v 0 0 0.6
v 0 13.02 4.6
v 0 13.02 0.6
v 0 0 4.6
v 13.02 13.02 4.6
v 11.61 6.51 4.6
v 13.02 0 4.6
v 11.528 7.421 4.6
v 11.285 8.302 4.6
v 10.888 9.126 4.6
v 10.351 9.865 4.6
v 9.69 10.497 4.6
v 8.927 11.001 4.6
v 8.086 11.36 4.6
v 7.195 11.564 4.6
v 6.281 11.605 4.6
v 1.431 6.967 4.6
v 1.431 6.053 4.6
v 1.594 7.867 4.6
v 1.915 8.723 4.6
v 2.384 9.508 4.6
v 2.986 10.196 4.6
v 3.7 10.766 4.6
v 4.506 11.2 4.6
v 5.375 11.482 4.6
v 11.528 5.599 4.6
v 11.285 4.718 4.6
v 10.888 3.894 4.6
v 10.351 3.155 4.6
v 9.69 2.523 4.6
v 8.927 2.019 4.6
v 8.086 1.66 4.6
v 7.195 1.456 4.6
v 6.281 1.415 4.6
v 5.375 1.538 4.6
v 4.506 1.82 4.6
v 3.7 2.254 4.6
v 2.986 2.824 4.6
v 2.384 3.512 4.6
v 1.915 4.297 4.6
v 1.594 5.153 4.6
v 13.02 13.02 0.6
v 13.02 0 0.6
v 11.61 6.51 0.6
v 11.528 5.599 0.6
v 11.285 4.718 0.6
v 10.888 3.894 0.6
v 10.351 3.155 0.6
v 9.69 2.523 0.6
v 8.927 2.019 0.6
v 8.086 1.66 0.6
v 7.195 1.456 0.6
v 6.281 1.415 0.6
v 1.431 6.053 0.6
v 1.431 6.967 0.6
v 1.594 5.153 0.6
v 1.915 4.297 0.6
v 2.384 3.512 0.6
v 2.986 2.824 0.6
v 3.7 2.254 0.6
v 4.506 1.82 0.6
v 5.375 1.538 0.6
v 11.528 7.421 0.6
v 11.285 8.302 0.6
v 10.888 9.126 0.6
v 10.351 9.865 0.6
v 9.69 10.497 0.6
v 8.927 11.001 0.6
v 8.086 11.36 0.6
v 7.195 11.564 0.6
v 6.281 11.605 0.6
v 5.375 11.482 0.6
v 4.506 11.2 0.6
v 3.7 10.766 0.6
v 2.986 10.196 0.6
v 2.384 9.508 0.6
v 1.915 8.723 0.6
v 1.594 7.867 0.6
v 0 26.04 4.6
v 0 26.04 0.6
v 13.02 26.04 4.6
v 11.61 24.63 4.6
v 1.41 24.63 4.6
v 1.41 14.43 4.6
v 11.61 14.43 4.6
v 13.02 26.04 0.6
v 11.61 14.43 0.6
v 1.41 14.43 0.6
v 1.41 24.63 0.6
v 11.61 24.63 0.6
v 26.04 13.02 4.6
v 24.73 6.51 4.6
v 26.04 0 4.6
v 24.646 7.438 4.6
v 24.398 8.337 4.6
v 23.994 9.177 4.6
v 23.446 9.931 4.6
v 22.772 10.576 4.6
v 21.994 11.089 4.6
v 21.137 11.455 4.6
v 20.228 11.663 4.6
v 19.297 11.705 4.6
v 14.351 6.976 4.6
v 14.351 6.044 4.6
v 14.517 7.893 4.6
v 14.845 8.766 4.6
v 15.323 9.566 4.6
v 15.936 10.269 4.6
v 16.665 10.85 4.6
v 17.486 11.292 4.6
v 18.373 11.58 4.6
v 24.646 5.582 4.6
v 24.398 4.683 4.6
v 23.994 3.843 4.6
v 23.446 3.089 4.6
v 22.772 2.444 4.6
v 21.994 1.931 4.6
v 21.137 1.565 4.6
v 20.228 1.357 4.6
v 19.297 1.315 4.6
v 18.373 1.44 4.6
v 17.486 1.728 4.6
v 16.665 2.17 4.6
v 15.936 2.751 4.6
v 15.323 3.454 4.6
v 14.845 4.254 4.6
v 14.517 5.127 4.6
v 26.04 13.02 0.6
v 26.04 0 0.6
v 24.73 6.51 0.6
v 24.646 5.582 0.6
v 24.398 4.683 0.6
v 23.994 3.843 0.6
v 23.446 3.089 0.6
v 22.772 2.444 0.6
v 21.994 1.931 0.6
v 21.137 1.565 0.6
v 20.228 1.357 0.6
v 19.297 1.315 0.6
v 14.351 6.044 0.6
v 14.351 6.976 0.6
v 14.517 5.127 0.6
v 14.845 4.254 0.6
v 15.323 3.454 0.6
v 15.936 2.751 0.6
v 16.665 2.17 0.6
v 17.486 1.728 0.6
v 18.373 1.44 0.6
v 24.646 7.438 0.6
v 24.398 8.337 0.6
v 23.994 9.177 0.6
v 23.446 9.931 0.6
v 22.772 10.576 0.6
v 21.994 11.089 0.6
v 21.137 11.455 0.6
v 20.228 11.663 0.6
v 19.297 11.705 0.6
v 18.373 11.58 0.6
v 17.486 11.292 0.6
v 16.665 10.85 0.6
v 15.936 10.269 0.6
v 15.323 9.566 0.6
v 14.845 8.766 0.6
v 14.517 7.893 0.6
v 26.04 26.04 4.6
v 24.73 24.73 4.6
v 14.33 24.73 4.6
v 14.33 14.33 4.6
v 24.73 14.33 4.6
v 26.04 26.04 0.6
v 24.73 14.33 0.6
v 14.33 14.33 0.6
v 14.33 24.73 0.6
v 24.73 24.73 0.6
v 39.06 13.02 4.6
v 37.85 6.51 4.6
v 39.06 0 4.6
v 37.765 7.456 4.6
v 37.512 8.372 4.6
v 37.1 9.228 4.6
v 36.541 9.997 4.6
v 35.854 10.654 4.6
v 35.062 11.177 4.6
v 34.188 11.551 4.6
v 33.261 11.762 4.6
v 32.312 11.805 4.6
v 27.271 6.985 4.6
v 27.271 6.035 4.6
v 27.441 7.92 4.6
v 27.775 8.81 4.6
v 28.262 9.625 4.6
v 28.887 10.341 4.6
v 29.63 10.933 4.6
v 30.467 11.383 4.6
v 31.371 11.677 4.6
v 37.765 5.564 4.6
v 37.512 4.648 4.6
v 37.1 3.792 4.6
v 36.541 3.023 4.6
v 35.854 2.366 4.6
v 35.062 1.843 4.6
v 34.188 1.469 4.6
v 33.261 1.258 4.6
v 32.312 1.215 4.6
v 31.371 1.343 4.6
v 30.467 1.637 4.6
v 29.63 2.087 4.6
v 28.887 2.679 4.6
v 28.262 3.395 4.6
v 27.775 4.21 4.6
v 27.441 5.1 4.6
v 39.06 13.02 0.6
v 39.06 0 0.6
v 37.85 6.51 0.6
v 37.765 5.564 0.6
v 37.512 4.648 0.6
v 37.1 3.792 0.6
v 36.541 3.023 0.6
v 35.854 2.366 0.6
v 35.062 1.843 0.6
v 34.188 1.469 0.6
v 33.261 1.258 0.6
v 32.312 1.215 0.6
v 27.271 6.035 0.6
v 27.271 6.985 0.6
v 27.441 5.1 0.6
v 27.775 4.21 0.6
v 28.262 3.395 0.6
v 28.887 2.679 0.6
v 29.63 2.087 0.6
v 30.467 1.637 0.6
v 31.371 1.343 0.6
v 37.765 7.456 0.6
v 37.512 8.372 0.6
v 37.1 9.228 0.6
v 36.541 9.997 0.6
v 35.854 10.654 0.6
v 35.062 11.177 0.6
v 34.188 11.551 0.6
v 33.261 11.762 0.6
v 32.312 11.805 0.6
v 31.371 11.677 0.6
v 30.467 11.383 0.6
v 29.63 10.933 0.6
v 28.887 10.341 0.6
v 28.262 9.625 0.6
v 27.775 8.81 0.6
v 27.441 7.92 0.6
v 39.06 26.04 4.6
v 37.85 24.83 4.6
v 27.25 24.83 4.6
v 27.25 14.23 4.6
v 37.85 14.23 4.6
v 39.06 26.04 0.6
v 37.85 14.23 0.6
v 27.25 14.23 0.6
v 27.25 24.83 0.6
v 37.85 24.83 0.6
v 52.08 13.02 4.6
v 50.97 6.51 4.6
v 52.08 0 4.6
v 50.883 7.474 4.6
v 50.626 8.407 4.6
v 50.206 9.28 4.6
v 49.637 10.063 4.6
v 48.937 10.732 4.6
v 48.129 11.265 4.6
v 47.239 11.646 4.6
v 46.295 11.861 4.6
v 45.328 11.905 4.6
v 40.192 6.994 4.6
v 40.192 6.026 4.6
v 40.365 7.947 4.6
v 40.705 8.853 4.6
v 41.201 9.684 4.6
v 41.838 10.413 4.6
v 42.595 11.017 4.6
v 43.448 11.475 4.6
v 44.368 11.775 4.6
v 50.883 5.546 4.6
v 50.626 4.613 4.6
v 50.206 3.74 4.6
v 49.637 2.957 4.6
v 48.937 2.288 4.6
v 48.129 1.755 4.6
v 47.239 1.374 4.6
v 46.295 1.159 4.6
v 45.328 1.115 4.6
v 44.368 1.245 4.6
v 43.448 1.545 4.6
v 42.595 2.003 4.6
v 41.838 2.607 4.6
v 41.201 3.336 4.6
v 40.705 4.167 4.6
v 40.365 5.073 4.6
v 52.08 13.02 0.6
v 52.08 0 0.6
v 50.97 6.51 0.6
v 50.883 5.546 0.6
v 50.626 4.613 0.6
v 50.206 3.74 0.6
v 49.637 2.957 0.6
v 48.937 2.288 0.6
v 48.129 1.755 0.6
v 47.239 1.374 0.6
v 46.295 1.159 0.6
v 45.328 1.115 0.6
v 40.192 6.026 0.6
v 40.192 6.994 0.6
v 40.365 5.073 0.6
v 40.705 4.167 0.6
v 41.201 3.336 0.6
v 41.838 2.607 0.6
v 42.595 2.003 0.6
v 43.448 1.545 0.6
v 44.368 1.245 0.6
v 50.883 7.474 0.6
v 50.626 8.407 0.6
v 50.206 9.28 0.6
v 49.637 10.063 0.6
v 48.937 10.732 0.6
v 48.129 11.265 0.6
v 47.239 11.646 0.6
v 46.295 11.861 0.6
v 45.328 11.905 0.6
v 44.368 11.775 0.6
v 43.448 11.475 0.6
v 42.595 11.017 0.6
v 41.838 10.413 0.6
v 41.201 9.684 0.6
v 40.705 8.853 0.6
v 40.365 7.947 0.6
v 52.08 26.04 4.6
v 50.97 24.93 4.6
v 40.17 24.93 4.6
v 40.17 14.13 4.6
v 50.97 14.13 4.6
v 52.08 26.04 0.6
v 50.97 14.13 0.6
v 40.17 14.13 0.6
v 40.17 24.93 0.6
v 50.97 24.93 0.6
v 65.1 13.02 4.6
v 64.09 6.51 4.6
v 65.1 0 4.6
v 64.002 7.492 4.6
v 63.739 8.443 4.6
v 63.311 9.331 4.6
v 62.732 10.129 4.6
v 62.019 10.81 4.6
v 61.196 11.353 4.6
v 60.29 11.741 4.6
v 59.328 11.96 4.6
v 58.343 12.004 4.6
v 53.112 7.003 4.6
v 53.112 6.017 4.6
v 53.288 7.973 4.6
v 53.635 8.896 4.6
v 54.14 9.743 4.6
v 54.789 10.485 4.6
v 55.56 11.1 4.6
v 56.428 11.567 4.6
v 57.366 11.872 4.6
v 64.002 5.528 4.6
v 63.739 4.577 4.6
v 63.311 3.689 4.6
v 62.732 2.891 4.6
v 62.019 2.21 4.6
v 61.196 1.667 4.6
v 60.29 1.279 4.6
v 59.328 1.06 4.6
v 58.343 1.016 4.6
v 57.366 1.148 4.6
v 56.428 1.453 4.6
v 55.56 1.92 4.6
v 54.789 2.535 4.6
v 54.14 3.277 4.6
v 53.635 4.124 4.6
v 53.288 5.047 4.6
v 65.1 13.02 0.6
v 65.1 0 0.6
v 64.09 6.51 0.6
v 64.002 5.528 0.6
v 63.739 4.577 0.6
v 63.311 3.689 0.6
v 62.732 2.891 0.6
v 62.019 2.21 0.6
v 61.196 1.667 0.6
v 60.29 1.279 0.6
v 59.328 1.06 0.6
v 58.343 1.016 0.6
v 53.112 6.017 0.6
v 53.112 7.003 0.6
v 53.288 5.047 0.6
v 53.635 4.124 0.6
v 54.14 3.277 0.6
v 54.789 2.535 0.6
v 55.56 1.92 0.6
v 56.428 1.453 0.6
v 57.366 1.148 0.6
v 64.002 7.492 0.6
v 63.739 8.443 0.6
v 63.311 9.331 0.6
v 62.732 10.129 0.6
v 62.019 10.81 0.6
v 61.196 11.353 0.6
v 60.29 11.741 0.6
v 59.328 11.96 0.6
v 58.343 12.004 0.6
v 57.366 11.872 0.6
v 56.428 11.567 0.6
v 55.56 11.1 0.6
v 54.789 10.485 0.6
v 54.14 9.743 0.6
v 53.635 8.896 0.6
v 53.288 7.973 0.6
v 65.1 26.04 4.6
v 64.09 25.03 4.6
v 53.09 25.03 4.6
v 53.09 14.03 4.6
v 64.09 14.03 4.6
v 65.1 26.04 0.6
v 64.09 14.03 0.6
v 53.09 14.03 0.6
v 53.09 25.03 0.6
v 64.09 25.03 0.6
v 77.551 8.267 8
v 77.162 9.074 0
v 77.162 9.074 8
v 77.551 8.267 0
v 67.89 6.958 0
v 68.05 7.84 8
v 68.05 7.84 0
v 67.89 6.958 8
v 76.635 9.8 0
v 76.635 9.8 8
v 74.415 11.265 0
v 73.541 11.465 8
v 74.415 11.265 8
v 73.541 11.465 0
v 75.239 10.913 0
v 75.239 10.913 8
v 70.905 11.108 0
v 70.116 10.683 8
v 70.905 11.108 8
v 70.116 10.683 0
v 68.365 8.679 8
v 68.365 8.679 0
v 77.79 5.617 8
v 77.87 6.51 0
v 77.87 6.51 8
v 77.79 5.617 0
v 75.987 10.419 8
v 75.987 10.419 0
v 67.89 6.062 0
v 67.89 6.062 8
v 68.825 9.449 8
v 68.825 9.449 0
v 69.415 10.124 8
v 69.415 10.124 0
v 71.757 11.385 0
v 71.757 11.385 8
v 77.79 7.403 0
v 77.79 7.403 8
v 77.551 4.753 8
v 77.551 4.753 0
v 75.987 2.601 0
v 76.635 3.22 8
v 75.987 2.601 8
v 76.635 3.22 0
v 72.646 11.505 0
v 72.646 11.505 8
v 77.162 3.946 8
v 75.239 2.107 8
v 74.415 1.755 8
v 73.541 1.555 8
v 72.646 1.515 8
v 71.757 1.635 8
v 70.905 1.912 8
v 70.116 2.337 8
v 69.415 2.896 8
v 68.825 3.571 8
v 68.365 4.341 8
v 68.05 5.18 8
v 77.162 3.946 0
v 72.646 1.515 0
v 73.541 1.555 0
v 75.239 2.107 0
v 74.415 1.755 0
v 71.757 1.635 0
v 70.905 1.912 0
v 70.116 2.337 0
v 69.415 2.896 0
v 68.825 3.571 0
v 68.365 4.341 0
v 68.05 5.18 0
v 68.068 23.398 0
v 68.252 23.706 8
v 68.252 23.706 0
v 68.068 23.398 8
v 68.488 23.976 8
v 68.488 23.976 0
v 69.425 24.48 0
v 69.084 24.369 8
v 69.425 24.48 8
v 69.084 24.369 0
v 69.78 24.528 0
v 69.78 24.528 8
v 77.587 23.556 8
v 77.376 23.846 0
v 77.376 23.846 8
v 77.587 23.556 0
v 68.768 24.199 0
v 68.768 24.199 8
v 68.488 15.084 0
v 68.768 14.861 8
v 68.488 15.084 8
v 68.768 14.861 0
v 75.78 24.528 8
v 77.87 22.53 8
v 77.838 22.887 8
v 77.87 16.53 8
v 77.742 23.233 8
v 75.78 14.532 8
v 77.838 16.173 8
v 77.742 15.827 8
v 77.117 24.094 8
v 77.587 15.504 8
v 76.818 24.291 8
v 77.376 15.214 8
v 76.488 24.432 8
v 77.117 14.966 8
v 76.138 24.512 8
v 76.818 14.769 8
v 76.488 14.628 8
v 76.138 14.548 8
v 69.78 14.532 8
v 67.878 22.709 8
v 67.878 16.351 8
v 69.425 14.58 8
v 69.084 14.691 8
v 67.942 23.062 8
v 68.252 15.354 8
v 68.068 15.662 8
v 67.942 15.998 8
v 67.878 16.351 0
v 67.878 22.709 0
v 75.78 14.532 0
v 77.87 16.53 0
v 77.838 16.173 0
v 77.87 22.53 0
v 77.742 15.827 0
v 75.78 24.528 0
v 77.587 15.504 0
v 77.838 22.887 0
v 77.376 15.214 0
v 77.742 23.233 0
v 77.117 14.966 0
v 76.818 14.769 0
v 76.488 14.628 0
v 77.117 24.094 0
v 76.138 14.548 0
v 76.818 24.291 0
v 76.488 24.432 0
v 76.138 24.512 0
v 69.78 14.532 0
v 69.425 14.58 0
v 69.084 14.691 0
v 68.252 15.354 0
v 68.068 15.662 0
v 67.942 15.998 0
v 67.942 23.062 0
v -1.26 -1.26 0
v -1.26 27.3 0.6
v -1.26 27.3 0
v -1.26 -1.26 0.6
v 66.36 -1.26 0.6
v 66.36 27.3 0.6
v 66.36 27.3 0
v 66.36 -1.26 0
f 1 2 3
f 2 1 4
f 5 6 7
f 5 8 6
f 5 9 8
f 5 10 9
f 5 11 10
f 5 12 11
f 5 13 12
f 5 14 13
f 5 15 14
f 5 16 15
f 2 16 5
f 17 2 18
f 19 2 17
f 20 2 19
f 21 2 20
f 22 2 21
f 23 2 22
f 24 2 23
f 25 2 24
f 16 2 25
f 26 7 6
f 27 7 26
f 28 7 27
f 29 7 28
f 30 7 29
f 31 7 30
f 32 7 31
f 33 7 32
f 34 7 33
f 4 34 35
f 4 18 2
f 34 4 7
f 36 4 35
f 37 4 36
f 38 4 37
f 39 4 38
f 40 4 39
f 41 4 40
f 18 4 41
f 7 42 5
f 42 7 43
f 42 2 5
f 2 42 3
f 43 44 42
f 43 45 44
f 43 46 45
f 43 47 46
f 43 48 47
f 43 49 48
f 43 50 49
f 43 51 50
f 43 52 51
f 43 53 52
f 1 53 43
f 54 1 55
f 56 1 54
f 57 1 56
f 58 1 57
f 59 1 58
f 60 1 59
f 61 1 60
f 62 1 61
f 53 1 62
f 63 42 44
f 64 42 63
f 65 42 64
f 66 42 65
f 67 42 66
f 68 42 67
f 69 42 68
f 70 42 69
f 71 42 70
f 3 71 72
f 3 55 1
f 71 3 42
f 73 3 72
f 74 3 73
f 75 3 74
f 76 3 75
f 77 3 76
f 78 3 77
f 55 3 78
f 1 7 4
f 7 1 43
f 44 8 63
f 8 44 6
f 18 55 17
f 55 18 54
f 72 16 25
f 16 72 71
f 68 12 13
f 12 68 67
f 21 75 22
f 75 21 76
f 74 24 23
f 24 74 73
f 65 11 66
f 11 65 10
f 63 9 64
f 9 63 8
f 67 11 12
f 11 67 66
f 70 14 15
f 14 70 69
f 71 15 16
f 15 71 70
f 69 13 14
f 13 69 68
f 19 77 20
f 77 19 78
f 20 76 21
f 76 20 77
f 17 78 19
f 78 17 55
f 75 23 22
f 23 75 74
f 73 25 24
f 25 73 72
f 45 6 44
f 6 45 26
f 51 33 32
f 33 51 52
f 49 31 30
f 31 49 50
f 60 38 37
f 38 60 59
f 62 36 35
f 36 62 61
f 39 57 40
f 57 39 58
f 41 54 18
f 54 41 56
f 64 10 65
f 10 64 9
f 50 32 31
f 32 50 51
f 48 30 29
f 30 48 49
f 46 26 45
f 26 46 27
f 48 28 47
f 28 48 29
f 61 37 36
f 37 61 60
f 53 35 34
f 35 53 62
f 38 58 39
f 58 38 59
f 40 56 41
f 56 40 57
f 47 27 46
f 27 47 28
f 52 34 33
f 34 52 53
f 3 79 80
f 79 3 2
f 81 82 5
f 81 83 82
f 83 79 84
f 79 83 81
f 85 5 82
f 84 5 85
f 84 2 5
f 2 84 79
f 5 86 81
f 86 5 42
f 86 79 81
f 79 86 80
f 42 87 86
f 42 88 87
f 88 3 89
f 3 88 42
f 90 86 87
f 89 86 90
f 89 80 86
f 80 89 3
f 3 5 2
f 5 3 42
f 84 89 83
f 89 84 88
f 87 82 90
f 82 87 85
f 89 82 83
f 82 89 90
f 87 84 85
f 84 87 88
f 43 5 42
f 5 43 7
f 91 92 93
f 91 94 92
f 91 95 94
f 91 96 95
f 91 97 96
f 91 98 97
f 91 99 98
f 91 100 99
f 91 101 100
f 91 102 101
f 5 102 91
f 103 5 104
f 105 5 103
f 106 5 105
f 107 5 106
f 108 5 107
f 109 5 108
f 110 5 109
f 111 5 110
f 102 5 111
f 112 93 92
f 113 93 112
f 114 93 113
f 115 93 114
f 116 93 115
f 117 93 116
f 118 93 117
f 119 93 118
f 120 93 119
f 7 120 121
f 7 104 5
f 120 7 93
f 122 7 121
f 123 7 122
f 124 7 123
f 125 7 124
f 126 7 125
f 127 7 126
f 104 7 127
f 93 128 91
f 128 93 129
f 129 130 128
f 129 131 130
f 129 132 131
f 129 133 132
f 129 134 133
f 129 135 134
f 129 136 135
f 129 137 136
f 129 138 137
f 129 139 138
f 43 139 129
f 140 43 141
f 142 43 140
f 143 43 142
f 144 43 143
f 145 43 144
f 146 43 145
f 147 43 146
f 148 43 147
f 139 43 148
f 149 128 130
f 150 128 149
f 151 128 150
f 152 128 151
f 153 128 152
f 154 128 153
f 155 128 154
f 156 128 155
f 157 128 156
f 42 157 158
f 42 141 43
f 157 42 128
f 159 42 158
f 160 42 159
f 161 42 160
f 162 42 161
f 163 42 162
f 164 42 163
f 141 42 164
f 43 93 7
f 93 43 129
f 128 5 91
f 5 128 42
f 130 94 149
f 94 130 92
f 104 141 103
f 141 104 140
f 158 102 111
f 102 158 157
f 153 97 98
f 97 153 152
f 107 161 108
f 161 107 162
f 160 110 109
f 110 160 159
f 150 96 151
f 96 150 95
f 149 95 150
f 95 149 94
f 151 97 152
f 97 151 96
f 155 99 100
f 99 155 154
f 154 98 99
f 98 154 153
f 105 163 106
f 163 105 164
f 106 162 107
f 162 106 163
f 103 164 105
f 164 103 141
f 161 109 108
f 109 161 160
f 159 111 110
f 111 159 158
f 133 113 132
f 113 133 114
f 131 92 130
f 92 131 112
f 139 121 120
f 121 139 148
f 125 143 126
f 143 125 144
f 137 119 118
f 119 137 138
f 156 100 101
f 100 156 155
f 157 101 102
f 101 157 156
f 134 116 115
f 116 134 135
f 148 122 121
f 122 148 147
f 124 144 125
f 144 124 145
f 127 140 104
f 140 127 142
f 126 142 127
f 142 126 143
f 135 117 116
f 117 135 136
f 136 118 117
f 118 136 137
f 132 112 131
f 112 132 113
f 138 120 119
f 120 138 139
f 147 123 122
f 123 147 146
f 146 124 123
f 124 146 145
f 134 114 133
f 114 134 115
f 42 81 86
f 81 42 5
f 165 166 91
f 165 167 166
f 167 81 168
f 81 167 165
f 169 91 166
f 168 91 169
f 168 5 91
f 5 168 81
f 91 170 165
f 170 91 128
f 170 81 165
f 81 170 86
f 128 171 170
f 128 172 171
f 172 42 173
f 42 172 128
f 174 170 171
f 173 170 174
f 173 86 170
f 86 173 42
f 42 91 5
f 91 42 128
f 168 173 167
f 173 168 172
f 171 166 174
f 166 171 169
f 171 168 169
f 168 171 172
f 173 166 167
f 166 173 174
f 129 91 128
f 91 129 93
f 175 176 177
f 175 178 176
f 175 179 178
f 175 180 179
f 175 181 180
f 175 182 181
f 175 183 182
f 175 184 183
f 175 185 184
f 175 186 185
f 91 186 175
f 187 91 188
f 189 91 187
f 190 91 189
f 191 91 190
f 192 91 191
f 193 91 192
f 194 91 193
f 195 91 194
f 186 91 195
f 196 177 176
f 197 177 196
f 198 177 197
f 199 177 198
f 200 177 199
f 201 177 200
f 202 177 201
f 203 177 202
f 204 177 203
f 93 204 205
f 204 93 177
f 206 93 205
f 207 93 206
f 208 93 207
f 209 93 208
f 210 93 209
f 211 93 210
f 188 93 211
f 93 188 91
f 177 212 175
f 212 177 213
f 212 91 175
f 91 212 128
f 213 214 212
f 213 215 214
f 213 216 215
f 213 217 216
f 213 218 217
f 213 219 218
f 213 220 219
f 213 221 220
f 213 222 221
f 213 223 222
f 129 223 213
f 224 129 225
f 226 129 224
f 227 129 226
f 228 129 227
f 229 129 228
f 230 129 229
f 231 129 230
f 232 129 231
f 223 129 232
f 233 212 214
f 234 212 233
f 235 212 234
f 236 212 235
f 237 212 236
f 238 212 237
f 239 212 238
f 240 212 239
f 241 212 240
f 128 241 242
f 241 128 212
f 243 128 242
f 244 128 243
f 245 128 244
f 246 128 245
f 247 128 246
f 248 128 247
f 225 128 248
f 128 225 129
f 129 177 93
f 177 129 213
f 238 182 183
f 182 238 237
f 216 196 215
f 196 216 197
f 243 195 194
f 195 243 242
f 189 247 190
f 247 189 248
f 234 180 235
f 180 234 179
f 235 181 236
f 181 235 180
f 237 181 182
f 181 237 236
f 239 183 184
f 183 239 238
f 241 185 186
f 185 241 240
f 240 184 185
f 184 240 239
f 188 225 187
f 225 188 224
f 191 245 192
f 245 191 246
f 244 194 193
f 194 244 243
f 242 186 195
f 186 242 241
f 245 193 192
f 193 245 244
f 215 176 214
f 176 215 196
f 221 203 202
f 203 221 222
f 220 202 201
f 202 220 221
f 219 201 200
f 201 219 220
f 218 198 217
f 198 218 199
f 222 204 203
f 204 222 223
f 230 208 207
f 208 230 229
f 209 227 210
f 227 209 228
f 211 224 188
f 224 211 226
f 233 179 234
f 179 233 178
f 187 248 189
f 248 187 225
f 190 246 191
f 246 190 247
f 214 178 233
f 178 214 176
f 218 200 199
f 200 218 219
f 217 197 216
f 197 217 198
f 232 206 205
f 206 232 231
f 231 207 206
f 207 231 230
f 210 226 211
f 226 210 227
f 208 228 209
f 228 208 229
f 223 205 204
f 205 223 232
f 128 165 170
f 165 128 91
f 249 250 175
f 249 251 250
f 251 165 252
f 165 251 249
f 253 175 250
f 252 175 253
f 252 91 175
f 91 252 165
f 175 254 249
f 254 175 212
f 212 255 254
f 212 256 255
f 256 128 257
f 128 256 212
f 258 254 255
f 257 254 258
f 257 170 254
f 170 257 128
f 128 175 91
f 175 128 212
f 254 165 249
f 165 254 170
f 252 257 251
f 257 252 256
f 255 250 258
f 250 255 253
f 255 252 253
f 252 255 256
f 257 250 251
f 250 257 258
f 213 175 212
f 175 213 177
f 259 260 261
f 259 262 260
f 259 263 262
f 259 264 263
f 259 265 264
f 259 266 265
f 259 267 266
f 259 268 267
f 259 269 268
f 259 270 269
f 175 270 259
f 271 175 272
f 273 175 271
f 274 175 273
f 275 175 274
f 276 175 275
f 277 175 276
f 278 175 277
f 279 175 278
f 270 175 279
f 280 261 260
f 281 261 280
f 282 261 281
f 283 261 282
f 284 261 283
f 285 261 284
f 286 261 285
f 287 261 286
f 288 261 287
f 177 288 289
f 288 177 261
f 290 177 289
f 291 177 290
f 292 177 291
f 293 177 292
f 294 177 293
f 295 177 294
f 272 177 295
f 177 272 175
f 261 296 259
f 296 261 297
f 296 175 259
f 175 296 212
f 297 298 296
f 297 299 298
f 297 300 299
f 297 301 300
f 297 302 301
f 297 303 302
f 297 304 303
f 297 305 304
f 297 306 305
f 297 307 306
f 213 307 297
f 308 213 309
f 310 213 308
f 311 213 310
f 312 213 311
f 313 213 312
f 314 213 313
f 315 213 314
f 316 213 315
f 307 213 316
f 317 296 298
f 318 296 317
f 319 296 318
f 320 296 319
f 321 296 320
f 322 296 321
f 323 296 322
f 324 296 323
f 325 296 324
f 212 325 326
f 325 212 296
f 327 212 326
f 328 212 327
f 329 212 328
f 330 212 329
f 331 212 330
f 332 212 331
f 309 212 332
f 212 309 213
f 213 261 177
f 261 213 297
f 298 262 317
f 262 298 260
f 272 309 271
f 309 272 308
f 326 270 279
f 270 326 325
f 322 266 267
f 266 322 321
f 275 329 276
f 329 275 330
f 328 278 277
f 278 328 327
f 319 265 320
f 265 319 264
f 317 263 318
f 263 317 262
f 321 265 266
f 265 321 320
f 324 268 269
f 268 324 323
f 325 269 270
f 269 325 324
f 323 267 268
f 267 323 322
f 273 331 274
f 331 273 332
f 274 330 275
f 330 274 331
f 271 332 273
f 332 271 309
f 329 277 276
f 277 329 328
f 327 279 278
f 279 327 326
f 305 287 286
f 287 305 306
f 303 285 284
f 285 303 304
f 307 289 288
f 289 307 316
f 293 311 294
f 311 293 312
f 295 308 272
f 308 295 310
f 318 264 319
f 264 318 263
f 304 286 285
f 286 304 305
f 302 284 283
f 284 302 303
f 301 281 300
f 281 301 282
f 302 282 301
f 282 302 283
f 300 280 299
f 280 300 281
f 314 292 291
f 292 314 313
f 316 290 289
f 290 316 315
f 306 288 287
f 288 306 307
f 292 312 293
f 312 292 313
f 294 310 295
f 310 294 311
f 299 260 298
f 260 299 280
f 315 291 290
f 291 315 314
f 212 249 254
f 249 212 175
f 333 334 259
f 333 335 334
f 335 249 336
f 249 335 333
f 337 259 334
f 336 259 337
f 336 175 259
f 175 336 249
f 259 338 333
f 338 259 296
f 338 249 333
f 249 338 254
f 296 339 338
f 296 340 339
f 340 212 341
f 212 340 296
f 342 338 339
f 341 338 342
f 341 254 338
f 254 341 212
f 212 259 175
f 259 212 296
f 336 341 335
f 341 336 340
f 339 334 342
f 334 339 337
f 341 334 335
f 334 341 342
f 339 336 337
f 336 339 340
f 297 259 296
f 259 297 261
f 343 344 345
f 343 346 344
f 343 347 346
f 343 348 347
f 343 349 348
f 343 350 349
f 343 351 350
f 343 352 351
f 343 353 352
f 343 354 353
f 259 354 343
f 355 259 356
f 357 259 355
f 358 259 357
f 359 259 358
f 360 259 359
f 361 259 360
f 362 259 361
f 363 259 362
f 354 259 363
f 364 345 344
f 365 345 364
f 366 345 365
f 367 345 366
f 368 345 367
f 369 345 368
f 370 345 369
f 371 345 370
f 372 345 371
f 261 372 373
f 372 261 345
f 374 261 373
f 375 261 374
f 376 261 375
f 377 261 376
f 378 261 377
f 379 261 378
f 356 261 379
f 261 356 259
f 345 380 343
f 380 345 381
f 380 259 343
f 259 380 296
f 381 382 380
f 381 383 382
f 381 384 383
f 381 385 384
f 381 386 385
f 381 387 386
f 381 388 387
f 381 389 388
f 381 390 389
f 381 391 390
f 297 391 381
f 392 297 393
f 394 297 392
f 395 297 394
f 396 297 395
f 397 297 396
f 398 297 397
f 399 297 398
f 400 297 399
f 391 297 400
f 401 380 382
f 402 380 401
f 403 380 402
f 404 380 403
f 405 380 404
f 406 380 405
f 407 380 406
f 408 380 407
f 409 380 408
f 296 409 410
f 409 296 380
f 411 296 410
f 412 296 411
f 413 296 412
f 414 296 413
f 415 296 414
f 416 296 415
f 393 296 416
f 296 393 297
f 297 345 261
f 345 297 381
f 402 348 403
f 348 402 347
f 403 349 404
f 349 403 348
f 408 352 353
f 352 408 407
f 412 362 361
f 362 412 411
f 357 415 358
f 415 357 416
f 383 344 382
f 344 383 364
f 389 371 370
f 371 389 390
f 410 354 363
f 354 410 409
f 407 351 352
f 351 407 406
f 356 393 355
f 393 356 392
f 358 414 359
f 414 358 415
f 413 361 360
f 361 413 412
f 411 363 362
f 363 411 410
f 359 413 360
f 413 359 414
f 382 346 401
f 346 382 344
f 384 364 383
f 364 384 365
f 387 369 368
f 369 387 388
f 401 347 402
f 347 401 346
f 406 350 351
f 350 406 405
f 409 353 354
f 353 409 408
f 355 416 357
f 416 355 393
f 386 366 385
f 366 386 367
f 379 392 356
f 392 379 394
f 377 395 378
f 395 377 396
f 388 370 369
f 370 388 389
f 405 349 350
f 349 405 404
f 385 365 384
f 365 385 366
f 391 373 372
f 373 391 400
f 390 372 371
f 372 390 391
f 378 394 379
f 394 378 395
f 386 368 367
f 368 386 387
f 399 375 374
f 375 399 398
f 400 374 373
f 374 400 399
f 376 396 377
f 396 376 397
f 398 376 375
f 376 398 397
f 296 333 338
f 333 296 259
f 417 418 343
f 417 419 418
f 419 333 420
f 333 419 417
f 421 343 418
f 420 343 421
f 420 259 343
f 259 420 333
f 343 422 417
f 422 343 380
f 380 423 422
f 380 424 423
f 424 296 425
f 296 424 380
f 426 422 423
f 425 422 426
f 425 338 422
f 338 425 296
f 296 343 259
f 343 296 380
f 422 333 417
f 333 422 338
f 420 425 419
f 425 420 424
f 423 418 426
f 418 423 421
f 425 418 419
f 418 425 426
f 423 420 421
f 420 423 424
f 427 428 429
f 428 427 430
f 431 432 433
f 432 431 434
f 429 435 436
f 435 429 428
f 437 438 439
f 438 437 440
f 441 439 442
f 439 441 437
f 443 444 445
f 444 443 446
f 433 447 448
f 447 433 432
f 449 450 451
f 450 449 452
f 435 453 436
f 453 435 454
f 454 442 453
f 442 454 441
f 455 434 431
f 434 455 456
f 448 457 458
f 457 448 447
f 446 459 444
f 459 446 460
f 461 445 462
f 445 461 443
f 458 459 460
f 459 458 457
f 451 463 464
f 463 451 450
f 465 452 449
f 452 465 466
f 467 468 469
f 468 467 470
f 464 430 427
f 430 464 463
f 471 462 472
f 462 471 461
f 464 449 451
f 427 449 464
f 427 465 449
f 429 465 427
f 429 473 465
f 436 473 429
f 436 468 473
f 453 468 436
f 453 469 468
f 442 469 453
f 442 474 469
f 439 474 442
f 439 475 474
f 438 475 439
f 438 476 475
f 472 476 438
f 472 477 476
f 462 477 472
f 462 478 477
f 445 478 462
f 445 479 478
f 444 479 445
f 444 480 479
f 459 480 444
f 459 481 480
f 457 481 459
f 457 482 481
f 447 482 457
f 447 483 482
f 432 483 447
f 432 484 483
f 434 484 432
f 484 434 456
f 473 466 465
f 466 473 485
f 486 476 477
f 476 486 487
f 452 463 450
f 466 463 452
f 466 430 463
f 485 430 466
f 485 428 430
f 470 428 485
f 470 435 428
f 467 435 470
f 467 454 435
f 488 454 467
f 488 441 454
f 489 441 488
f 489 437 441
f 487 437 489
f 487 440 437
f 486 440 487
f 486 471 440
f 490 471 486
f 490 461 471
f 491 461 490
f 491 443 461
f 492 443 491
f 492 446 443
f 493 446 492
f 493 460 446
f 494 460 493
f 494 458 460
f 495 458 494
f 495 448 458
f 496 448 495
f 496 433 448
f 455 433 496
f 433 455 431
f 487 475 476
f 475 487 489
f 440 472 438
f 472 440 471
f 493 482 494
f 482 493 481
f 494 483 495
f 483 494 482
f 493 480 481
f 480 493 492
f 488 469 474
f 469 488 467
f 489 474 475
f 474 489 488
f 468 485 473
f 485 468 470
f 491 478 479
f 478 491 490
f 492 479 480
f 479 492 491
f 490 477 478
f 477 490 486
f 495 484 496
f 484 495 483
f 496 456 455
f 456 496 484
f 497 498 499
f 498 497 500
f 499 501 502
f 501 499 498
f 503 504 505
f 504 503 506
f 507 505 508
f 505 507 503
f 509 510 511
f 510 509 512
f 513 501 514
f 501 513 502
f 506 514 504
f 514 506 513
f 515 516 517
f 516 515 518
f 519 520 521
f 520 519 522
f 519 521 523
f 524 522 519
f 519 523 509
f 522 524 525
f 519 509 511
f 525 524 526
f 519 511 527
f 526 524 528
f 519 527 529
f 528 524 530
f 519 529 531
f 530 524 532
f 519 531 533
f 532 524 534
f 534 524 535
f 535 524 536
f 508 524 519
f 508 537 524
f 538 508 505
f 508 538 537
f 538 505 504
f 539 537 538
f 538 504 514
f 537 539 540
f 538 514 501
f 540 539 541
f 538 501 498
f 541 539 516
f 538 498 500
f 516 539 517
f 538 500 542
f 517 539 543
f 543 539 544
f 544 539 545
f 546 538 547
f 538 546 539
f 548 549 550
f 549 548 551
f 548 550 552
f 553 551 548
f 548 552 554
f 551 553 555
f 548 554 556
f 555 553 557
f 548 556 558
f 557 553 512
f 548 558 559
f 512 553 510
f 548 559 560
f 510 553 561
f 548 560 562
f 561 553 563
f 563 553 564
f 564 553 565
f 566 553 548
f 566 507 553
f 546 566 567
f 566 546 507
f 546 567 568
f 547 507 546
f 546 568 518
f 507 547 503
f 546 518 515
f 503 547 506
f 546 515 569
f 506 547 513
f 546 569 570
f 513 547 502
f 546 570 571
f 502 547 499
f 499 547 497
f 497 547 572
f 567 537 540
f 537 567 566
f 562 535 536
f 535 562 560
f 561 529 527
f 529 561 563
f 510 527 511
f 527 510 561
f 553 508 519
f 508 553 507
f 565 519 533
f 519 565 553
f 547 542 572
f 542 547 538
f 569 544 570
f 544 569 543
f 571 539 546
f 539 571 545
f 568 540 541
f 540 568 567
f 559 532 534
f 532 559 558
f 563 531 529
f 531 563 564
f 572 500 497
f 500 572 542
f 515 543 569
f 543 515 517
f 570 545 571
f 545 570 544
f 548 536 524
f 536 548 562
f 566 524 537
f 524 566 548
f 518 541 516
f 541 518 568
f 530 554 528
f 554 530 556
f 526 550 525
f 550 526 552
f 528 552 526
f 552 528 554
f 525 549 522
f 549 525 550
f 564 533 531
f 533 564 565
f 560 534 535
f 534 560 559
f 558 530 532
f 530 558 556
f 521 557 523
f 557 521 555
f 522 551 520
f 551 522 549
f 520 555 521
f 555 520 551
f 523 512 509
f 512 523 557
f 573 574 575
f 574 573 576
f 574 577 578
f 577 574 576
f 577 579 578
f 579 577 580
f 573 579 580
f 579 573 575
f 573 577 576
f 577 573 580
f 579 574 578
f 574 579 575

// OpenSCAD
include <3d-printer-testing-suite.scad>

/* [Hidden] */
color_scheme = ["lightblue"];
test_type = "tolerance";
